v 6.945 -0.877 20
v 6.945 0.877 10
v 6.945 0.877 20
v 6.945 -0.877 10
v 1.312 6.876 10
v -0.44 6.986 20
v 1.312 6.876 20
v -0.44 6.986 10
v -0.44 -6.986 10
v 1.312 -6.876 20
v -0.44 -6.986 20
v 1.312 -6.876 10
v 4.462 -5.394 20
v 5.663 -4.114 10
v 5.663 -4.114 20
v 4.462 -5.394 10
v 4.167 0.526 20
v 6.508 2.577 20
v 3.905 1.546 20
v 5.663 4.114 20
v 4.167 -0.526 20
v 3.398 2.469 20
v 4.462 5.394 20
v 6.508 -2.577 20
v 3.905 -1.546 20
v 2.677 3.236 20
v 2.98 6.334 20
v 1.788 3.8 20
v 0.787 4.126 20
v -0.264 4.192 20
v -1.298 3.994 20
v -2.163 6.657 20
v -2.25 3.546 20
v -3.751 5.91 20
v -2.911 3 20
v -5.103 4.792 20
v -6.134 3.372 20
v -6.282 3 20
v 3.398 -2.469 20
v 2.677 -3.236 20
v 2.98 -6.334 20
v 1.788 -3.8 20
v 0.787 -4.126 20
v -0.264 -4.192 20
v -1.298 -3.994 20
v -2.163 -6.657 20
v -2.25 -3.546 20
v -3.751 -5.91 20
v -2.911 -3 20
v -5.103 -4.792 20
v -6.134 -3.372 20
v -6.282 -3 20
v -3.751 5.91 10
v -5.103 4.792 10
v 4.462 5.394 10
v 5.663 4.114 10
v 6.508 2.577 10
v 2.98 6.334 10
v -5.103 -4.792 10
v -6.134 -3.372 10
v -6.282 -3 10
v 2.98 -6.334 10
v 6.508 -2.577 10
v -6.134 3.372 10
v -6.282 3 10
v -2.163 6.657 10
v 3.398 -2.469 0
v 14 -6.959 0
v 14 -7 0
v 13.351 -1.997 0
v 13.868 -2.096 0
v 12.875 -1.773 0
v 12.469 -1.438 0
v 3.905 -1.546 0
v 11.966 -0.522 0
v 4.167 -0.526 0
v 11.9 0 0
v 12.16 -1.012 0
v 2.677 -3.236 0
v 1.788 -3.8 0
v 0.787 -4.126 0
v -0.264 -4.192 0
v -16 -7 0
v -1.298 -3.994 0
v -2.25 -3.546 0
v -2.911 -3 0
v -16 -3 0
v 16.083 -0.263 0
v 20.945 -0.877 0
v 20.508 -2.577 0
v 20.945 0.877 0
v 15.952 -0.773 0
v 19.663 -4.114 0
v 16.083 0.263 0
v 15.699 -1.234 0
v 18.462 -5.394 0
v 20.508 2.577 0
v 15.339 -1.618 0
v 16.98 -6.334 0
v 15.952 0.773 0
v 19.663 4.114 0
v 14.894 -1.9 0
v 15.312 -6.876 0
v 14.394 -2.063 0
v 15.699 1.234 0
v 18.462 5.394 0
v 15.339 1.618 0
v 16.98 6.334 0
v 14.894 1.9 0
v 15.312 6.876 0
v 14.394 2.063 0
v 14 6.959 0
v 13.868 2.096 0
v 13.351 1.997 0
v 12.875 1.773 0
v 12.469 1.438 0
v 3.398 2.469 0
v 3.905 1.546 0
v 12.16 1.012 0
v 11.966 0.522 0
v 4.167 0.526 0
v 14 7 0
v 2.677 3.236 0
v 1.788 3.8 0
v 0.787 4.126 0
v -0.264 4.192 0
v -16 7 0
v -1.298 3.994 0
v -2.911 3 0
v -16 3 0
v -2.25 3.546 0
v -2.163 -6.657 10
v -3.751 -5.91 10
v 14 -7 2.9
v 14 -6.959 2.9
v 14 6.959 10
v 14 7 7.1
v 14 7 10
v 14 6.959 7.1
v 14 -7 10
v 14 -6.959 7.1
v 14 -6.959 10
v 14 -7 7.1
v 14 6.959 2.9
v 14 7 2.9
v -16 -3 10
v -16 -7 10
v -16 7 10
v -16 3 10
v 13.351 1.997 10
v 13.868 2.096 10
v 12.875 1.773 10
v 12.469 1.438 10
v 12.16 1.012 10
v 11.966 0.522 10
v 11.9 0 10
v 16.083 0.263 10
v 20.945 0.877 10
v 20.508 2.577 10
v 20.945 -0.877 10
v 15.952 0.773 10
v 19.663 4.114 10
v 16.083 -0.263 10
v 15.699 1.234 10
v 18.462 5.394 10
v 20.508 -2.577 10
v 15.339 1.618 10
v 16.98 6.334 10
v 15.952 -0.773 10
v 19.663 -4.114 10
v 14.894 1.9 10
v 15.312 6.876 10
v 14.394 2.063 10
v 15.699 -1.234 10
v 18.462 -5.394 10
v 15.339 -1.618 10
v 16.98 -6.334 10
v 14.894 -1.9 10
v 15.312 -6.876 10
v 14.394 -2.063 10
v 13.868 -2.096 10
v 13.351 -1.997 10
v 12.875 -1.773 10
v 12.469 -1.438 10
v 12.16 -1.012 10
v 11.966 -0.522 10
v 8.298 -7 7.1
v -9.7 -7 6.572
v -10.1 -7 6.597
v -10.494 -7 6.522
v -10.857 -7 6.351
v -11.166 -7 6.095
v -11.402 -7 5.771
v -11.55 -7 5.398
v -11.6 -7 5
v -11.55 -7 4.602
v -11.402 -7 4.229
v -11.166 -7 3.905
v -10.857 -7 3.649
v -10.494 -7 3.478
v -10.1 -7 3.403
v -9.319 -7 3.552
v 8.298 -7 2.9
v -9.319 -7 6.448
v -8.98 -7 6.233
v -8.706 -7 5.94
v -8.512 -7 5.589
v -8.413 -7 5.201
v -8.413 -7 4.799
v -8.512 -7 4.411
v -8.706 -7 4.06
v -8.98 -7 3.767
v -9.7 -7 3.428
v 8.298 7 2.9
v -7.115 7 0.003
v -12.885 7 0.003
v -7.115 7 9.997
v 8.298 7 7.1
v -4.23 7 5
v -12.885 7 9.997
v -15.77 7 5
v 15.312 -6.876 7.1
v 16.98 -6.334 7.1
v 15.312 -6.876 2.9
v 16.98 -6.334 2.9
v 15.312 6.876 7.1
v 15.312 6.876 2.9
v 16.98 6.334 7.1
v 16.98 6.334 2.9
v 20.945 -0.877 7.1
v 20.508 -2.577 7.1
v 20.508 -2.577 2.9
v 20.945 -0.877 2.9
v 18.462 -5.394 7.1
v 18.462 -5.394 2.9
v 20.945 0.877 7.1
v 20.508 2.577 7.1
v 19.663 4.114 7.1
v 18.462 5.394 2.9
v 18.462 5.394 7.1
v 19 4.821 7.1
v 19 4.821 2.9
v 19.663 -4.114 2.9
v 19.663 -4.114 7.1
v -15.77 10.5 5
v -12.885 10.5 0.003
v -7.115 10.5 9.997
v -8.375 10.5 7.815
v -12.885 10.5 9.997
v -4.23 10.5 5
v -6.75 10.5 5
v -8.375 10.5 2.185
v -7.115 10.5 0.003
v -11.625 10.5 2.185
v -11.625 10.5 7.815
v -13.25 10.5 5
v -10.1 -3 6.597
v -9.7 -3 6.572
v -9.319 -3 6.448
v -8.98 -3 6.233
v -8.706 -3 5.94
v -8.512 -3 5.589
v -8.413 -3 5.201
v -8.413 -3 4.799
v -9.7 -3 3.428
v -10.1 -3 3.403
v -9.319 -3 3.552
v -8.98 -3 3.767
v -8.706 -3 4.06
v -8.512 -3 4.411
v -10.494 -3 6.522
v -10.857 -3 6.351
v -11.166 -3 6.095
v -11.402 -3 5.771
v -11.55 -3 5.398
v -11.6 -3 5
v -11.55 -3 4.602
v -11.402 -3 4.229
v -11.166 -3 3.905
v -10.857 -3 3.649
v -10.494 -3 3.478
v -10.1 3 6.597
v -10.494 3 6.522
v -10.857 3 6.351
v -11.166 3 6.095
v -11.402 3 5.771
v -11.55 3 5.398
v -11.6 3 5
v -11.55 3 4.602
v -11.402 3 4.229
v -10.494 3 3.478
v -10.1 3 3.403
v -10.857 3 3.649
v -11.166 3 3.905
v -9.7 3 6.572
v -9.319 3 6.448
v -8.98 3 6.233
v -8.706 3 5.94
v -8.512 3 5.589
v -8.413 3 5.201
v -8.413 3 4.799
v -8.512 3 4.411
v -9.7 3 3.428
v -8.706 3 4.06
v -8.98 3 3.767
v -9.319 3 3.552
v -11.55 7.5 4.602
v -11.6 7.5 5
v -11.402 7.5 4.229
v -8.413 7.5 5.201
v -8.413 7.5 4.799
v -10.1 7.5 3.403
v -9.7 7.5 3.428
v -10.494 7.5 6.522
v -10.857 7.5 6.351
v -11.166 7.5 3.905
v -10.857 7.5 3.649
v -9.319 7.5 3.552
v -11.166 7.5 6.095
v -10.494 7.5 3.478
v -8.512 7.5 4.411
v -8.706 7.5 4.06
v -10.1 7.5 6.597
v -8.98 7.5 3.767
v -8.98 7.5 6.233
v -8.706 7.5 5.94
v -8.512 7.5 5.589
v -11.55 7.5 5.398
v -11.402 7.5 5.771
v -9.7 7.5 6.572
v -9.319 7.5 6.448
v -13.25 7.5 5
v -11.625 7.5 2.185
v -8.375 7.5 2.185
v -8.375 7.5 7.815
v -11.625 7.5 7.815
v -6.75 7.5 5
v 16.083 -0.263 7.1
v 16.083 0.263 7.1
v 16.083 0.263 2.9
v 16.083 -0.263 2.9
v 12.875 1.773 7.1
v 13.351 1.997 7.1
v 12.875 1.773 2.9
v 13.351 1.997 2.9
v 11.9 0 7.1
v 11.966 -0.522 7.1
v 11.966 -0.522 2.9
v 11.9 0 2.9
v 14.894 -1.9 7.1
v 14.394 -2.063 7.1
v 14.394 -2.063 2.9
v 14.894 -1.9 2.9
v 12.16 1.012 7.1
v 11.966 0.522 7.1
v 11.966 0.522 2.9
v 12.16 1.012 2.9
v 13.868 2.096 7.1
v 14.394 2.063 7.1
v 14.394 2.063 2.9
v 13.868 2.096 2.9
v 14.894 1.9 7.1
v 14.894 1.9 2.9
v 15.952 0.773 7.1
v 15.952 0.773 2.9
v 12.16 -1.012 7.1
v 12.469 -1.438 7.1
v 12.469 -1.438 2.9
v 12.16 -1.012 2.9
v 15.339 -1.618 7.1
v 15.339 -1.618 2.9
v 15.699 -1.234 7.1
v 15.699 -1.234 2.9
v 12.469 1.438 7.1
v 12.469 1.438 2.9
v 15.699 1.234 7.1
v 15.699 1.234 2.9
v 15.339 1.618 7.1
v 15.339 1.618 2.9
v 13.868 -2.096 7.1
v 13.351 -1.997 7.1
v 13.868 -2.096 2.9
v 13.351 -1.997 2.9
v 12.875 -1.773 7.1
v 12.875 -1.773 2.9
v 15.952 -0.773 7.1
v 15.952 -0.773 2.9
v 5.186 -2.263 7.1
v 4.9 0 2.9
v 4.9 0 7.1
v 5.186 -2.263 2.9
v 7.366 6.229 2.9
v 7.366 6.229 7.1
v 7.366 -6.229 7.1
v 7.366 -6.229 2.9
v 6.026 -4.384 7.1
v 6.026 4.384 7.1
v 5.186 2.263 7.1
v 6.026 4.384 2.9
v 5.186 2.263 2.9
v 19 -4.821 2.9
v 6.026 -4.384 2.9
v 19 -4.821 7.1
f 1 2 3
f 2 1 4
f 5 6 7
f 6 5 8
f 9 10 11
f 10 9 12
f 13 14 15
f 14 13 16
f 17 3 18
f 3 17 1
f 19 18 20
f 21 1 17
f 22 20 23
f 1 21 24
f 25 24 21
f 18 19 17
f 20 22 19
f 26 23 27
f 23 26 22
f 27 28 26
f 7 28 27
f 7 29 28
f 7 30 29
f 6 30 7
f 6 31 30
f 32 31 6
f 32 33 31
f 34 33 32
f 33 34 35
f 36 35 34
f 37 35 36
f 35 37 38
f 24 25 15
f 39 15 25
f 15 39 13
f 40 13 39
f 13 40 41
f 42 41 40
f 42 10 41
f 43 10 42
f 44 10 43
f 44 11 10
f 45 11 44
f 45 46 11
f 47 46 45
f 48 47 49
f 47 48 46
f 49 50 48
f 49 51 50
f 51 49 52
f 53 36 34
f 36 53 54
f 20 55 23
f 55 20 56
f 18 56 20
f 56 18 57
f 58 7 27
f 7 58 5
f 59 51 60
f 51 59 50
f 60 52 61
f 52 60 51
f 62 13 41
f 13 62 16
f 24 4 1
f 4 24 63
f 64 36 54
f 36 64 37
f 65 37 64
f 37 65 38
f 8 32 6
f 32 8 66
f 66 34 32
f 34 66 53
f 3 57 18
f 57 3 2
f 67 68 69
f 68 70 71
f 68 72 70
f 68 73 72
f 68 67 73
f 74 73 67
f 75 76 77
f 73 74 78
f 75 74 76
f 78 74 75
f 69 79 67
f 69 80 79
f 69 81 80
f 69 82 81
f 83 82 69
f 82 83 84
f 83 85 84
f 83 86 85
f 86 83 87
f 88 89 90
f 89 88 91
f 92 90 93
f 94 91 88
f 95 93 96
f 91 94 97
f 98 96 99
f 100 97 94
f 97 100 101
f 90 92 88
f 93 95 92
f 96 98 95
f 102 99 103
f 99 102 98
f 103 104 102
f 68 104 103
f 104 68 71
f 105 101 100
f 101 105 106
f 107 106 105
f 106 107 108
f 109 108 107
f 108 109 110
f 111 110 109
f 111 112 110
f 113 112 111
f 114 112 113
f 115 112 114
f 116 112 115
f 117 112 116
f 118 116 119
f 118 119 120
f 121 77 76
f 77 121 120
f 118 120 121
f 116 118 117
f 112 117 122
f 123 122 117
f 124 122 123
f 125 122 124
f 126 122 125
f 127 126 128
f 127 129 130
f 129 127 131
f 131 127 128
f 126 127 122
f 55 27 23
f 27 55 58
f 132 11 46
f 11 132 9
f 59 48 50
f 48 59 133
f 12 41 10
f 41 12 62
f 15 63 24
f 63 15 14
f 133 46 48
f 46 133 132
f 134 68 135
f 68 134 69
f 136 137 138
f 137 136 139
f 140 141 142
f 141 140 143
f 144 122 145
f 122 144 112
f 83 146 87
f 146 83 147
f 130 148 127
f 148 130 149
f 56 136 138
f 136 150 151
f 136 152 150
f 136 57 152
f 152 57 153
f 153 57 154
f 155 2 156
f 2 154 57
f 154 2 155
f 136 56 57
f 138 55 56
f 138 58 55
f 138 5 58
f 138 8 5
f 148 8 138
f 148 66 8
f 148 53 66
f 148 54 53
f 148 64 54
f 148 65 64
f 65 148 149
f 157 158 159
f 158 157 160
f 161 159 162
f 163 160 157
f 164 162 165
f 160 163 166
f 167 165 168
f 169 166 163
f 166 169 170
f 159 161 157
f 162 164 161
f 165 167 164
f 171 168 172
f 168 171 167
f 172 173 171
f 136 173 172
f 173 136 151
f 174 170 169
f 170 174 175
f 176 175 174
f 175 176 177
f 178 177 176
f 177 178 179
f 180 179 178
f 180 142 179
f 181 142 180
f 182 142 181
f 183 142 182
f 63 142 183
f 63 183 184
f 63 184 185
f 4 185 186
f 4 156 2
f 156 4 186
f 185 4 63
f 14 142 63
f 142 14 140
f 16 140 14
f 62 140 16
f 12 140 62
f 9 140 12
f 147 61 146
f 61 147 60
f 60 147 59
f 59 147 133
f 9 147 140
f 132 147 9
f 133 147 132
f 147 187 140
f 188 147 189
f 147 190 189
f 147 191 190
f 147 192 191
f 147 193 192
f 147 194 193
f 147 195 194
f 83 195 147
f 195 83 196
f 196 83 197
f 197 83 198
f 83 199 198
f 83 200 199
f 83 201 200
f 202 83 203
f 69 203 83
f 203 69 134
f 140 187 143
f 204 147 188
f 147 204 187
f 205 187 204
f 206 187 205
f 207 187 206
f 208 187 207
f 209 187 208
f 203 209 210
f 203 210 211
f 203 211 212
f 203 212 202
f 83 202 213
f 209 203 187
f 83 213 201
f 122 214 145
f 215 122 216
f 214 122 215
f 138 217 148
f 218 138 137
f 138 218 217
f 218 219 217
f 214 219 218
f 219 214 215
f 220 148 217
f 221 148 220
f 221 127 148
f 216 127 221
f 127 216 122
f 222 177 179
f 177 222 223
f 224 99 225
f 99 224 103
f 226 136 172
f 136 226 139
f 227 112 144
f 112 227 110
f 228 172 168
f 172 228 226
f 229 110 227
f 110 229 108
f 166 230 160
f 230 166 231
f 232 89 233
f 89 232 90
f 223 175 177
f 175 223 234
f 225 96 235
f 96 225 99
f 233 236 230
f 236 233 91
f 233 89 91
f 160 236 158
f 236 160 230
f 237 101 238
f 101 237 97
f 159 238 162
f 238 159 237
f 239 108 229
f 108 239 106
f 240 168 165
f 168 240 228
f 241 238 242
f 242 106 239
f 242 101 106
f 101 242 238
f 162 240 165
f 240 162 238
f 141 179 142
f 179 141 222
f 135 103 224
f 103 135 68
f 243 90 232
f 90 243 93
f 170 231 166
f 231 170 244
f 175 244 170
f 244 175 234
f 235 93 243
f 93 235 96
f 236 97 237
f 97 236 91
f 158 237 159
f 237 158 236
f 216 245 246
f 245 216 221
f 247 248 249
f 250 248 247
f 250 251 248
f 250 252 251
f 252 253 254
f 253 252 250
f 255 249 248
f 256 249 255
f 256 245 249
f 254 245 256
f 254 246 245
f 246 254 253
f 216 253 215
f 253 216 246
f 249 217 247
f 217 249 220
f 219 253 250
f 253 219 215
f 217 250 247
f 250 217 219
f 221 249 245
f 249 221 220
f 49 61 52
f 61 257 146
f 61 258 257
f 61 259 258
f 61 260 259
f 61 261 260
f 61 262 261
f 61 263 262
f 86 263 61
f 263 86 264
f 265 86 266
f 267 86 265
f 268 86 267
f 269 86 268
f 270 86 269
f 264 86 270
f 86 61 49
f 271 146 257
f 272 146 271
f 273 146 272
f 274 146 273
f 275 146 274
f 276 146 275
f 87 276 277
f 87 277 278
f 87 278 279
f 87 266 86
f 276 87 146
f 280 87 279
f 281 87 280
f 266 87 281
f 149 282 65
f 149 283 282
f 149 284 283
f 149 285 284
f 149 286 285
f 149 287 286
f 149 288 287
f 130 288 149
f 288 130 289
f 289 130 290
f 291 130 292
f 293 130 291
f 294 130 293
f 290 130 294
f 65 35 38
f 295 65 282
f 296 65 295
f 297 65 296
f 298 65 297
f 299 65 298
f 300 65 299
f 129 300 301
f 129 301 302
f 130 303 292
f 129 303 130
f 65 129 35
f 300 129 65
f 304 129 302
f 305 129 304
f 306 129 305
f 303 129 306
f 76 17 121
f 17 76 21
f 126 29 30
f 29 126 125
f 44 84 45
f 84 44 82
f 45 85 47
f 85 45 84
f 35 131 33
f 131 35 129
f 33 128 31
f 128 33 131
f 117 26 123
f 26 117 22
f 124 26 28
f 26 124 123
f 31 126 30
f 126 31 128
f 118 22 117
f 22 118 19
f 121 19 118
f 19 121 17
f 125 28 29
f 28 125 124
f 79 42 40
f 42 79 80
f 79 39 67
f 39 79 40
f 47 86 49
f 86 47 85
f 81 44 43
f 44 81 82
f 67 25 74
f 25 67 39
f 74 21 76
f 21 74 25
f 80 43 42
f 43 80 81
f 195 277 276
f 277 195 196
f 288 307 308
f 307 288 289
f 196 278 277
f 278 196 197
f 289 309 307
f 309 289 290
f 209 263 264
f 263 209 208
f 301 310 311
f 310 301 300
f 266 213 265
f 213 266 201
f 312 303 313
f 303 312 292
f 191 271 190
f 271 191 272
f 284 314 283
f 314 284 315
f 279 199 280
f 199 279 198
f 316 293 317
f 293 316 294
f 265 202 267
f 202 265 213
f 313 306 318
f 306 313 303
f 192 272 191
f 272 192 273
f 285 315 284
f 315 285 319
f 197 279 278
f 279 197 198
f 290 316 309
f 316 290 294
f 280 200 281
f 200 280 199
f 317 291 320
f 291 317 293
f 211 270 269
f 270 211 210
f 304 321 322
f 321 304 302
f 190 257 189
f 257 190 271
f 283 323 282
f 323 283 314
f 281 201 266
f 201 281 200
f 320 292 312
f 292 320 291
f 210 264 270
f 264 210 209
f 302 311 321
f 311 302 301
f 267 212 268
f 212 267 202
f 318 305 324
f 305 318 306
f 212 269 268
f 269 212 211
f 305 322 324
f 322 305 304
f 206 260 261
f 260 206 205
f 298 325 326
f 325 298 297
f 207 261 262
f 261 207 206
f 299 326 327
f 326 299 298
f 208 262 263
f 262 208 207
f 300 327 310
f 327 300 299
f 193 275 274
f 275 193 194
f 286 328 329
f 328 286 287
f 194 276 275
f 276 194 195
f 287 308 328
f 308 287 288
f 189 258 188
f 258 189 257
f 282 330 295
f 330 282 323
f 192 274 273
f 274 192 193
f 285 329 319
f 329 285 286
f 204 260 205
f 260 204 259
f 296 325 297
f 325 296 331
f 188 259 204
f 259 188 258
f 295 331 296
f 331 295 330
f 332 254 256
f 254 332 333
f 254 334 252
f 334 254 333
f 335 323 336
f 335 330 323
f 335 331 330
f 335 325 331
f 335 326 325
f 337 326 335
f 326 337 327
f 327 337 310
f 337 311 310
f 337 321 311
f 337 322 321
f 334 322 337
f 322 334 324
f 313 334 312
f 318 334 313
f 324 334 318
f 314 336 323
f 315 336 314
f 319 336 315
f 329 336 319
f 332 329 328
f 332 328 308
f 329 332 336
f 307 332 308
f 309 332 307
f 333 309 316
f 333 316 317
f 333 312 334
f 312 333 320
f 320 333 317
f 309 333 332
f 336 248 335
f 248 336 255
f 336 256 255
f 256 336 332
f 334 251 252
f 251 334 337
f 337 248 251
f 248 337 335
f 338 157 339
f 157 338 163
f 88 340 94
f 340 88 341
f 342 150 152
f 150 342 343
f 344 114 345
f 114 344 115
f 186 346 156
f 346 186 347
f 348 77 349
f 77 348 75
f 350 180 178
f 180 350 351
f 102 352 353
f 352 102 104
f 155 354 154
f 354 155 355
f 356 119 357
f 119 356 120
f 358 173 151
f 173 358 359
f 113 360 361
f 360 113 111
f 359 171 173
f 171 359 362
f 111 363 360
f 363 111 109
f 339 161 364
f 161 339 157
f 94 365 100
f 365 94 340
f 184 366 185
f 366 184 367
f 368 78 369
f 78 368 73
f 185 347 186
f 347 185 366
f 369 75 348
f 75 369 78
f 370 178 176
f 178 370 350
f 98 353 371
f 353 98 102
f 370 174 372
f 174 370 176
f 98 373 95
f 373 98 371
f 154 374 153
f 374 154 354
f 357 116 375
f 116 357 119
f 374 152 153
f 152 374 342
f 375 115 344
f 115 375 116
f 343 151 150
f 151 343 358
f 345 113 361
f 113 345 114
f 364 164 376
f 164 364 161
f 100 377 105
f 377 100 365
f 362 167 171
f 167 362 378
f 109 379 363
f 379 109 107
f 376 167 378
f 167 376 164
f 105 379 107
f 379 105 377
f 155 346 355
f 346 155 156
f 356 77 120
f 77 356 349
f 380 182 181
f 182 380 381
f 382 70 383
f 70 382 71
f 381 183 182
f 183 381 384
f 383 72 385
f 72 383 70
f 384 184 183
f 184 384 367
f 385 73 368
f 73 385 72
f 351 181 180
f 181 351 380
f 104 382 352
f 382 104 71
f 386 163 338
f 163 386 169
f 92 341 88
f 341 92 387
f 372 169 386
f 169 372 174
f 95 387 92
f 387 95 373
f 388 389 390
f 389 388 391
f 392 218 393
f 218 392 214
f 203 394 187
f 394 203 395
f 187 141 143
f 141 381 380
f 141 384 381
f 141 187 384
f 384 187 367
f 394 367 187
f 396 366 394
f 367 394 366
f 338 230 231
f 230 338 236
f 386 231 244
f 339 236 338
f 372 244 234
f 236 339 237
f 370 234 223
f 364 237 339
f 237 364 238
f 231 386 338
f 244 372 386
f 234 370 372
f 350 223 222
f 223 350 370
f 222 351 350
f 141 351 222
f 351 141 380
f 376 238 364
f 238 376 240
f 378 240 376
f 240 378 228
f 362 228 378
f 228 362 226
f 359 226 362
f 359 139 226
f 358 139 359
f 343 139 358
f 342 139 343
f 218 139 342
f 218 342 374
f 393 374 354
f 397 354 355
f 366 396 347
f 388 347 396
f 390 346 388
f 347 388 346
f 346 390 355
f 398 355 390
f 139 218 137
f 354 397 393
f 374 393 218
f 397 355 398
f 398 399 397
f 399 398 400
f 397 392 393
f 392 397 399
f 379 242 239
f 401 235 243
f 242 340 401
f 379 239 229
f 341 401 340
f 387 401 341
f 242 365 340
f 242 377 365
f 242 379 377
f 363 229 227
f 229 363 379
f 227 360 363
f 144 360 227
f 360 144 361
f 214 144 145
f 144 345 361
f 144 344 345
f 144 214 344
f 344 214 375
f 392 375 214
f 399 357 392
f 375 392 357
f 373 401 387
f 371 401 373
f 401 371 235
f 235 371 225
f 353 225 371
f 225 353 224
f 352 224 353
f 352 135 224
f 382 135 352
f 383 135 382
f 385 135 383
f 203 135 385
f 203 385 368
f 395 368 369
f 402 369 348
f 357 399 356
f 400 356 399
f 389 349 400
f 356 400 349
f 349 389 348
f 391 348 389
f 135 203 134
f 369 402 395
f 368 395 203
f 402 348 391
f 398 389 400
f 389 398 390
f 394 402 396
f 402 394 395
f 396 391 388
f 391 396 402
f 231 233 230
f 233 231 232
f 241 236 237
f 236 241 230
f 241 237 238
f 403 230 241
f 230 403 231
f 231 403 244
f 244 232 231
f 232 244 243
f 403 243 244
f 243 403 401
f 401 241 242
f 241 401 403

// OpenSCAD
// file: lib/halfcube.scad
// библиотечная функция - прямоугольная призма
/*
 * a - вектор [x,y,z] - куб, в который вписана призма
 * orient - строка "x"/"y"/"z" - ориентация треугольной грани призмы
 * center - логическое true/false - позиционирование относительно центра или с угла
 *
 * Автор - Andrew Answer (Андрей Нуждов): http://answe.ru
 * Сделано для проекта SibRap: http://reprap.org/wiki/SibRap
 * GitHub: https://github.com/andrewanswer/sibrap
 */
module halfcube(a, orient, center) {
	translate(center==true?-a/2:0) {
		if (orient=="x")
			polyhedron (points = [[a[0],0,a[2]], [0,0,a[2]], [0,a[1],0], [0,0,0], [a[0],0,0], [a[0],a[1],0]], faces = [[1,3,2], [4,0,5], [3,1,4], [1,2,5], [1,0,4], [0,1,5],  [5,2,4], [4,2,3]]);
		if (orient=="y")
			polyhedron (points = [[0,a[1],a[2]], [0,0,a[2]], [0,a[1],0], [0,0,0], [a[0],0,0], [a[0],a[1],0]], faces = [[1,3,2], [1,2,0], [3,1,4], [0,2,5], [1,5,4], [1,0,5],  [5,2,4], [4,2,3]]);
		if (orient=="z")
			polyhedron (points = [[0,a[1],a[2]], [0,0,a[2]], [0,a[1],0], [0,0,0], [a[0],0,0], [a[0],0,a[2]]], faces = [[1,3,2], [1,2,0], [3,1,4], [0,2,5], [1,5,4], [1,0,5],  [5,2,4], [4,2,3]]);
	}
}

// test
/*
halfcube([10,20,30],"x",true);
halfcube([10,20,30],"y",true);
halfcube([10,20,30],"z",false);
*/
// main file
include <lib/halfcube.scad>

// качество цилиндров
$fn=25;
// наружный диаметр направляющей
d1=8;
// допуск на радиус направляющей
// (расстояние между стенками направляющей и детали)
delta1=0.2;
// диаметр М3
d2=3.2;
// диаметр гайки М3
d3=6.1;
// внешний диаметр концевика
d4=d1/2+3;
// вырез концевика
h1=d1-2;

// диаметр гайки М4
d5=8;
// ширина гайки М4
d6=d5*cos(30);
// высота гайки М4
h2=3.1+delta1;
// высота колеса регулировки
h2=4+delta1;
// диаметр колеса регулировки
d7=16.2;

module main(){
difference(){
	union(){
		translate([d4,d4,-10]) cylinder(20,r=d4);
		//translate([d4,0,0]) cube([16,d4*2,10]);
		translate([-14+7,0,0]) cube([30,d4*2,10]);
		translate([-14+7,d4,0]) cylinder(10,r=d4);
		translate([17,17.5,5]) rotate([90,0,0]) cylinder(5,r=5.77,$fn=6);
	}
	translate([9,d4-h1/2,-10.1]) cube([18,h1,21]);
	translate([d4, d4,-10.1]) cylinder(21, r=d1/2+delta1);

	//Securing hole
	translate([17,17,5]) rotate([90,0,0]) cylinder(20,r=d2/2);
	translate([17,19.5,5]) rotate([90,0,0]) cylinder(5,r=d3/2+0.2,$fn=6);

	translate([-7,d4,-1]) cylinder(20,r=4.2/2);
	translate([-7,d4,5]) cylinder([16,16,h2],true);
	//translate([-7,d4,5]) cube([16,16,h2],true);
	translate([-7,d4,5-h2/2]) cylinder(r=d7/2+1,h=h2);
    //translate([-4.8,17,5]) rotate([90,0,0]) cylinder(20,r=2.5/2);
	//translate([-11,17,5]) rotate([90,0,0]) cylinder(20,r=2.5/2);
}

/*rotate([0,0,-90])
translate([d4,d4,0]){
    translate([-9.8,0,5]) {
        halfcube([8+5.8,5,5],"x");
        rotate([90,0,0]) halfcube([8+5.8,5,5],"x");
    }
    difference() {
        translate([-2.9,0,0])cube([8+5.8,10,10],true);
        cylinder(r=d5/2+delta1,h=h2,$fn=6);
        translate([d4,0,h2/2])
            cube([d4*2,d6,h2],true);
        translate([d4,0,-10+delta1])
            cube([d4*2,4,20],true);
        translate([0,0,-20+delta1])cylinder(r=4/2+delta1,h=20);
    }
}*/

}
/* ДЕТАЛЬ */
//main();
/* ПЕЧАТЬ */
rotate([180,0,180]) translate([-d4,-d4,-10]) {
    main();
    translate([-7,d4,5-h2/2])
    intersection() {
        cylinder(r=d4, h=h2);
        translate([-d4-5,0,h2/2])cube([d4*2,d4*2,h2],true);
    }
}
